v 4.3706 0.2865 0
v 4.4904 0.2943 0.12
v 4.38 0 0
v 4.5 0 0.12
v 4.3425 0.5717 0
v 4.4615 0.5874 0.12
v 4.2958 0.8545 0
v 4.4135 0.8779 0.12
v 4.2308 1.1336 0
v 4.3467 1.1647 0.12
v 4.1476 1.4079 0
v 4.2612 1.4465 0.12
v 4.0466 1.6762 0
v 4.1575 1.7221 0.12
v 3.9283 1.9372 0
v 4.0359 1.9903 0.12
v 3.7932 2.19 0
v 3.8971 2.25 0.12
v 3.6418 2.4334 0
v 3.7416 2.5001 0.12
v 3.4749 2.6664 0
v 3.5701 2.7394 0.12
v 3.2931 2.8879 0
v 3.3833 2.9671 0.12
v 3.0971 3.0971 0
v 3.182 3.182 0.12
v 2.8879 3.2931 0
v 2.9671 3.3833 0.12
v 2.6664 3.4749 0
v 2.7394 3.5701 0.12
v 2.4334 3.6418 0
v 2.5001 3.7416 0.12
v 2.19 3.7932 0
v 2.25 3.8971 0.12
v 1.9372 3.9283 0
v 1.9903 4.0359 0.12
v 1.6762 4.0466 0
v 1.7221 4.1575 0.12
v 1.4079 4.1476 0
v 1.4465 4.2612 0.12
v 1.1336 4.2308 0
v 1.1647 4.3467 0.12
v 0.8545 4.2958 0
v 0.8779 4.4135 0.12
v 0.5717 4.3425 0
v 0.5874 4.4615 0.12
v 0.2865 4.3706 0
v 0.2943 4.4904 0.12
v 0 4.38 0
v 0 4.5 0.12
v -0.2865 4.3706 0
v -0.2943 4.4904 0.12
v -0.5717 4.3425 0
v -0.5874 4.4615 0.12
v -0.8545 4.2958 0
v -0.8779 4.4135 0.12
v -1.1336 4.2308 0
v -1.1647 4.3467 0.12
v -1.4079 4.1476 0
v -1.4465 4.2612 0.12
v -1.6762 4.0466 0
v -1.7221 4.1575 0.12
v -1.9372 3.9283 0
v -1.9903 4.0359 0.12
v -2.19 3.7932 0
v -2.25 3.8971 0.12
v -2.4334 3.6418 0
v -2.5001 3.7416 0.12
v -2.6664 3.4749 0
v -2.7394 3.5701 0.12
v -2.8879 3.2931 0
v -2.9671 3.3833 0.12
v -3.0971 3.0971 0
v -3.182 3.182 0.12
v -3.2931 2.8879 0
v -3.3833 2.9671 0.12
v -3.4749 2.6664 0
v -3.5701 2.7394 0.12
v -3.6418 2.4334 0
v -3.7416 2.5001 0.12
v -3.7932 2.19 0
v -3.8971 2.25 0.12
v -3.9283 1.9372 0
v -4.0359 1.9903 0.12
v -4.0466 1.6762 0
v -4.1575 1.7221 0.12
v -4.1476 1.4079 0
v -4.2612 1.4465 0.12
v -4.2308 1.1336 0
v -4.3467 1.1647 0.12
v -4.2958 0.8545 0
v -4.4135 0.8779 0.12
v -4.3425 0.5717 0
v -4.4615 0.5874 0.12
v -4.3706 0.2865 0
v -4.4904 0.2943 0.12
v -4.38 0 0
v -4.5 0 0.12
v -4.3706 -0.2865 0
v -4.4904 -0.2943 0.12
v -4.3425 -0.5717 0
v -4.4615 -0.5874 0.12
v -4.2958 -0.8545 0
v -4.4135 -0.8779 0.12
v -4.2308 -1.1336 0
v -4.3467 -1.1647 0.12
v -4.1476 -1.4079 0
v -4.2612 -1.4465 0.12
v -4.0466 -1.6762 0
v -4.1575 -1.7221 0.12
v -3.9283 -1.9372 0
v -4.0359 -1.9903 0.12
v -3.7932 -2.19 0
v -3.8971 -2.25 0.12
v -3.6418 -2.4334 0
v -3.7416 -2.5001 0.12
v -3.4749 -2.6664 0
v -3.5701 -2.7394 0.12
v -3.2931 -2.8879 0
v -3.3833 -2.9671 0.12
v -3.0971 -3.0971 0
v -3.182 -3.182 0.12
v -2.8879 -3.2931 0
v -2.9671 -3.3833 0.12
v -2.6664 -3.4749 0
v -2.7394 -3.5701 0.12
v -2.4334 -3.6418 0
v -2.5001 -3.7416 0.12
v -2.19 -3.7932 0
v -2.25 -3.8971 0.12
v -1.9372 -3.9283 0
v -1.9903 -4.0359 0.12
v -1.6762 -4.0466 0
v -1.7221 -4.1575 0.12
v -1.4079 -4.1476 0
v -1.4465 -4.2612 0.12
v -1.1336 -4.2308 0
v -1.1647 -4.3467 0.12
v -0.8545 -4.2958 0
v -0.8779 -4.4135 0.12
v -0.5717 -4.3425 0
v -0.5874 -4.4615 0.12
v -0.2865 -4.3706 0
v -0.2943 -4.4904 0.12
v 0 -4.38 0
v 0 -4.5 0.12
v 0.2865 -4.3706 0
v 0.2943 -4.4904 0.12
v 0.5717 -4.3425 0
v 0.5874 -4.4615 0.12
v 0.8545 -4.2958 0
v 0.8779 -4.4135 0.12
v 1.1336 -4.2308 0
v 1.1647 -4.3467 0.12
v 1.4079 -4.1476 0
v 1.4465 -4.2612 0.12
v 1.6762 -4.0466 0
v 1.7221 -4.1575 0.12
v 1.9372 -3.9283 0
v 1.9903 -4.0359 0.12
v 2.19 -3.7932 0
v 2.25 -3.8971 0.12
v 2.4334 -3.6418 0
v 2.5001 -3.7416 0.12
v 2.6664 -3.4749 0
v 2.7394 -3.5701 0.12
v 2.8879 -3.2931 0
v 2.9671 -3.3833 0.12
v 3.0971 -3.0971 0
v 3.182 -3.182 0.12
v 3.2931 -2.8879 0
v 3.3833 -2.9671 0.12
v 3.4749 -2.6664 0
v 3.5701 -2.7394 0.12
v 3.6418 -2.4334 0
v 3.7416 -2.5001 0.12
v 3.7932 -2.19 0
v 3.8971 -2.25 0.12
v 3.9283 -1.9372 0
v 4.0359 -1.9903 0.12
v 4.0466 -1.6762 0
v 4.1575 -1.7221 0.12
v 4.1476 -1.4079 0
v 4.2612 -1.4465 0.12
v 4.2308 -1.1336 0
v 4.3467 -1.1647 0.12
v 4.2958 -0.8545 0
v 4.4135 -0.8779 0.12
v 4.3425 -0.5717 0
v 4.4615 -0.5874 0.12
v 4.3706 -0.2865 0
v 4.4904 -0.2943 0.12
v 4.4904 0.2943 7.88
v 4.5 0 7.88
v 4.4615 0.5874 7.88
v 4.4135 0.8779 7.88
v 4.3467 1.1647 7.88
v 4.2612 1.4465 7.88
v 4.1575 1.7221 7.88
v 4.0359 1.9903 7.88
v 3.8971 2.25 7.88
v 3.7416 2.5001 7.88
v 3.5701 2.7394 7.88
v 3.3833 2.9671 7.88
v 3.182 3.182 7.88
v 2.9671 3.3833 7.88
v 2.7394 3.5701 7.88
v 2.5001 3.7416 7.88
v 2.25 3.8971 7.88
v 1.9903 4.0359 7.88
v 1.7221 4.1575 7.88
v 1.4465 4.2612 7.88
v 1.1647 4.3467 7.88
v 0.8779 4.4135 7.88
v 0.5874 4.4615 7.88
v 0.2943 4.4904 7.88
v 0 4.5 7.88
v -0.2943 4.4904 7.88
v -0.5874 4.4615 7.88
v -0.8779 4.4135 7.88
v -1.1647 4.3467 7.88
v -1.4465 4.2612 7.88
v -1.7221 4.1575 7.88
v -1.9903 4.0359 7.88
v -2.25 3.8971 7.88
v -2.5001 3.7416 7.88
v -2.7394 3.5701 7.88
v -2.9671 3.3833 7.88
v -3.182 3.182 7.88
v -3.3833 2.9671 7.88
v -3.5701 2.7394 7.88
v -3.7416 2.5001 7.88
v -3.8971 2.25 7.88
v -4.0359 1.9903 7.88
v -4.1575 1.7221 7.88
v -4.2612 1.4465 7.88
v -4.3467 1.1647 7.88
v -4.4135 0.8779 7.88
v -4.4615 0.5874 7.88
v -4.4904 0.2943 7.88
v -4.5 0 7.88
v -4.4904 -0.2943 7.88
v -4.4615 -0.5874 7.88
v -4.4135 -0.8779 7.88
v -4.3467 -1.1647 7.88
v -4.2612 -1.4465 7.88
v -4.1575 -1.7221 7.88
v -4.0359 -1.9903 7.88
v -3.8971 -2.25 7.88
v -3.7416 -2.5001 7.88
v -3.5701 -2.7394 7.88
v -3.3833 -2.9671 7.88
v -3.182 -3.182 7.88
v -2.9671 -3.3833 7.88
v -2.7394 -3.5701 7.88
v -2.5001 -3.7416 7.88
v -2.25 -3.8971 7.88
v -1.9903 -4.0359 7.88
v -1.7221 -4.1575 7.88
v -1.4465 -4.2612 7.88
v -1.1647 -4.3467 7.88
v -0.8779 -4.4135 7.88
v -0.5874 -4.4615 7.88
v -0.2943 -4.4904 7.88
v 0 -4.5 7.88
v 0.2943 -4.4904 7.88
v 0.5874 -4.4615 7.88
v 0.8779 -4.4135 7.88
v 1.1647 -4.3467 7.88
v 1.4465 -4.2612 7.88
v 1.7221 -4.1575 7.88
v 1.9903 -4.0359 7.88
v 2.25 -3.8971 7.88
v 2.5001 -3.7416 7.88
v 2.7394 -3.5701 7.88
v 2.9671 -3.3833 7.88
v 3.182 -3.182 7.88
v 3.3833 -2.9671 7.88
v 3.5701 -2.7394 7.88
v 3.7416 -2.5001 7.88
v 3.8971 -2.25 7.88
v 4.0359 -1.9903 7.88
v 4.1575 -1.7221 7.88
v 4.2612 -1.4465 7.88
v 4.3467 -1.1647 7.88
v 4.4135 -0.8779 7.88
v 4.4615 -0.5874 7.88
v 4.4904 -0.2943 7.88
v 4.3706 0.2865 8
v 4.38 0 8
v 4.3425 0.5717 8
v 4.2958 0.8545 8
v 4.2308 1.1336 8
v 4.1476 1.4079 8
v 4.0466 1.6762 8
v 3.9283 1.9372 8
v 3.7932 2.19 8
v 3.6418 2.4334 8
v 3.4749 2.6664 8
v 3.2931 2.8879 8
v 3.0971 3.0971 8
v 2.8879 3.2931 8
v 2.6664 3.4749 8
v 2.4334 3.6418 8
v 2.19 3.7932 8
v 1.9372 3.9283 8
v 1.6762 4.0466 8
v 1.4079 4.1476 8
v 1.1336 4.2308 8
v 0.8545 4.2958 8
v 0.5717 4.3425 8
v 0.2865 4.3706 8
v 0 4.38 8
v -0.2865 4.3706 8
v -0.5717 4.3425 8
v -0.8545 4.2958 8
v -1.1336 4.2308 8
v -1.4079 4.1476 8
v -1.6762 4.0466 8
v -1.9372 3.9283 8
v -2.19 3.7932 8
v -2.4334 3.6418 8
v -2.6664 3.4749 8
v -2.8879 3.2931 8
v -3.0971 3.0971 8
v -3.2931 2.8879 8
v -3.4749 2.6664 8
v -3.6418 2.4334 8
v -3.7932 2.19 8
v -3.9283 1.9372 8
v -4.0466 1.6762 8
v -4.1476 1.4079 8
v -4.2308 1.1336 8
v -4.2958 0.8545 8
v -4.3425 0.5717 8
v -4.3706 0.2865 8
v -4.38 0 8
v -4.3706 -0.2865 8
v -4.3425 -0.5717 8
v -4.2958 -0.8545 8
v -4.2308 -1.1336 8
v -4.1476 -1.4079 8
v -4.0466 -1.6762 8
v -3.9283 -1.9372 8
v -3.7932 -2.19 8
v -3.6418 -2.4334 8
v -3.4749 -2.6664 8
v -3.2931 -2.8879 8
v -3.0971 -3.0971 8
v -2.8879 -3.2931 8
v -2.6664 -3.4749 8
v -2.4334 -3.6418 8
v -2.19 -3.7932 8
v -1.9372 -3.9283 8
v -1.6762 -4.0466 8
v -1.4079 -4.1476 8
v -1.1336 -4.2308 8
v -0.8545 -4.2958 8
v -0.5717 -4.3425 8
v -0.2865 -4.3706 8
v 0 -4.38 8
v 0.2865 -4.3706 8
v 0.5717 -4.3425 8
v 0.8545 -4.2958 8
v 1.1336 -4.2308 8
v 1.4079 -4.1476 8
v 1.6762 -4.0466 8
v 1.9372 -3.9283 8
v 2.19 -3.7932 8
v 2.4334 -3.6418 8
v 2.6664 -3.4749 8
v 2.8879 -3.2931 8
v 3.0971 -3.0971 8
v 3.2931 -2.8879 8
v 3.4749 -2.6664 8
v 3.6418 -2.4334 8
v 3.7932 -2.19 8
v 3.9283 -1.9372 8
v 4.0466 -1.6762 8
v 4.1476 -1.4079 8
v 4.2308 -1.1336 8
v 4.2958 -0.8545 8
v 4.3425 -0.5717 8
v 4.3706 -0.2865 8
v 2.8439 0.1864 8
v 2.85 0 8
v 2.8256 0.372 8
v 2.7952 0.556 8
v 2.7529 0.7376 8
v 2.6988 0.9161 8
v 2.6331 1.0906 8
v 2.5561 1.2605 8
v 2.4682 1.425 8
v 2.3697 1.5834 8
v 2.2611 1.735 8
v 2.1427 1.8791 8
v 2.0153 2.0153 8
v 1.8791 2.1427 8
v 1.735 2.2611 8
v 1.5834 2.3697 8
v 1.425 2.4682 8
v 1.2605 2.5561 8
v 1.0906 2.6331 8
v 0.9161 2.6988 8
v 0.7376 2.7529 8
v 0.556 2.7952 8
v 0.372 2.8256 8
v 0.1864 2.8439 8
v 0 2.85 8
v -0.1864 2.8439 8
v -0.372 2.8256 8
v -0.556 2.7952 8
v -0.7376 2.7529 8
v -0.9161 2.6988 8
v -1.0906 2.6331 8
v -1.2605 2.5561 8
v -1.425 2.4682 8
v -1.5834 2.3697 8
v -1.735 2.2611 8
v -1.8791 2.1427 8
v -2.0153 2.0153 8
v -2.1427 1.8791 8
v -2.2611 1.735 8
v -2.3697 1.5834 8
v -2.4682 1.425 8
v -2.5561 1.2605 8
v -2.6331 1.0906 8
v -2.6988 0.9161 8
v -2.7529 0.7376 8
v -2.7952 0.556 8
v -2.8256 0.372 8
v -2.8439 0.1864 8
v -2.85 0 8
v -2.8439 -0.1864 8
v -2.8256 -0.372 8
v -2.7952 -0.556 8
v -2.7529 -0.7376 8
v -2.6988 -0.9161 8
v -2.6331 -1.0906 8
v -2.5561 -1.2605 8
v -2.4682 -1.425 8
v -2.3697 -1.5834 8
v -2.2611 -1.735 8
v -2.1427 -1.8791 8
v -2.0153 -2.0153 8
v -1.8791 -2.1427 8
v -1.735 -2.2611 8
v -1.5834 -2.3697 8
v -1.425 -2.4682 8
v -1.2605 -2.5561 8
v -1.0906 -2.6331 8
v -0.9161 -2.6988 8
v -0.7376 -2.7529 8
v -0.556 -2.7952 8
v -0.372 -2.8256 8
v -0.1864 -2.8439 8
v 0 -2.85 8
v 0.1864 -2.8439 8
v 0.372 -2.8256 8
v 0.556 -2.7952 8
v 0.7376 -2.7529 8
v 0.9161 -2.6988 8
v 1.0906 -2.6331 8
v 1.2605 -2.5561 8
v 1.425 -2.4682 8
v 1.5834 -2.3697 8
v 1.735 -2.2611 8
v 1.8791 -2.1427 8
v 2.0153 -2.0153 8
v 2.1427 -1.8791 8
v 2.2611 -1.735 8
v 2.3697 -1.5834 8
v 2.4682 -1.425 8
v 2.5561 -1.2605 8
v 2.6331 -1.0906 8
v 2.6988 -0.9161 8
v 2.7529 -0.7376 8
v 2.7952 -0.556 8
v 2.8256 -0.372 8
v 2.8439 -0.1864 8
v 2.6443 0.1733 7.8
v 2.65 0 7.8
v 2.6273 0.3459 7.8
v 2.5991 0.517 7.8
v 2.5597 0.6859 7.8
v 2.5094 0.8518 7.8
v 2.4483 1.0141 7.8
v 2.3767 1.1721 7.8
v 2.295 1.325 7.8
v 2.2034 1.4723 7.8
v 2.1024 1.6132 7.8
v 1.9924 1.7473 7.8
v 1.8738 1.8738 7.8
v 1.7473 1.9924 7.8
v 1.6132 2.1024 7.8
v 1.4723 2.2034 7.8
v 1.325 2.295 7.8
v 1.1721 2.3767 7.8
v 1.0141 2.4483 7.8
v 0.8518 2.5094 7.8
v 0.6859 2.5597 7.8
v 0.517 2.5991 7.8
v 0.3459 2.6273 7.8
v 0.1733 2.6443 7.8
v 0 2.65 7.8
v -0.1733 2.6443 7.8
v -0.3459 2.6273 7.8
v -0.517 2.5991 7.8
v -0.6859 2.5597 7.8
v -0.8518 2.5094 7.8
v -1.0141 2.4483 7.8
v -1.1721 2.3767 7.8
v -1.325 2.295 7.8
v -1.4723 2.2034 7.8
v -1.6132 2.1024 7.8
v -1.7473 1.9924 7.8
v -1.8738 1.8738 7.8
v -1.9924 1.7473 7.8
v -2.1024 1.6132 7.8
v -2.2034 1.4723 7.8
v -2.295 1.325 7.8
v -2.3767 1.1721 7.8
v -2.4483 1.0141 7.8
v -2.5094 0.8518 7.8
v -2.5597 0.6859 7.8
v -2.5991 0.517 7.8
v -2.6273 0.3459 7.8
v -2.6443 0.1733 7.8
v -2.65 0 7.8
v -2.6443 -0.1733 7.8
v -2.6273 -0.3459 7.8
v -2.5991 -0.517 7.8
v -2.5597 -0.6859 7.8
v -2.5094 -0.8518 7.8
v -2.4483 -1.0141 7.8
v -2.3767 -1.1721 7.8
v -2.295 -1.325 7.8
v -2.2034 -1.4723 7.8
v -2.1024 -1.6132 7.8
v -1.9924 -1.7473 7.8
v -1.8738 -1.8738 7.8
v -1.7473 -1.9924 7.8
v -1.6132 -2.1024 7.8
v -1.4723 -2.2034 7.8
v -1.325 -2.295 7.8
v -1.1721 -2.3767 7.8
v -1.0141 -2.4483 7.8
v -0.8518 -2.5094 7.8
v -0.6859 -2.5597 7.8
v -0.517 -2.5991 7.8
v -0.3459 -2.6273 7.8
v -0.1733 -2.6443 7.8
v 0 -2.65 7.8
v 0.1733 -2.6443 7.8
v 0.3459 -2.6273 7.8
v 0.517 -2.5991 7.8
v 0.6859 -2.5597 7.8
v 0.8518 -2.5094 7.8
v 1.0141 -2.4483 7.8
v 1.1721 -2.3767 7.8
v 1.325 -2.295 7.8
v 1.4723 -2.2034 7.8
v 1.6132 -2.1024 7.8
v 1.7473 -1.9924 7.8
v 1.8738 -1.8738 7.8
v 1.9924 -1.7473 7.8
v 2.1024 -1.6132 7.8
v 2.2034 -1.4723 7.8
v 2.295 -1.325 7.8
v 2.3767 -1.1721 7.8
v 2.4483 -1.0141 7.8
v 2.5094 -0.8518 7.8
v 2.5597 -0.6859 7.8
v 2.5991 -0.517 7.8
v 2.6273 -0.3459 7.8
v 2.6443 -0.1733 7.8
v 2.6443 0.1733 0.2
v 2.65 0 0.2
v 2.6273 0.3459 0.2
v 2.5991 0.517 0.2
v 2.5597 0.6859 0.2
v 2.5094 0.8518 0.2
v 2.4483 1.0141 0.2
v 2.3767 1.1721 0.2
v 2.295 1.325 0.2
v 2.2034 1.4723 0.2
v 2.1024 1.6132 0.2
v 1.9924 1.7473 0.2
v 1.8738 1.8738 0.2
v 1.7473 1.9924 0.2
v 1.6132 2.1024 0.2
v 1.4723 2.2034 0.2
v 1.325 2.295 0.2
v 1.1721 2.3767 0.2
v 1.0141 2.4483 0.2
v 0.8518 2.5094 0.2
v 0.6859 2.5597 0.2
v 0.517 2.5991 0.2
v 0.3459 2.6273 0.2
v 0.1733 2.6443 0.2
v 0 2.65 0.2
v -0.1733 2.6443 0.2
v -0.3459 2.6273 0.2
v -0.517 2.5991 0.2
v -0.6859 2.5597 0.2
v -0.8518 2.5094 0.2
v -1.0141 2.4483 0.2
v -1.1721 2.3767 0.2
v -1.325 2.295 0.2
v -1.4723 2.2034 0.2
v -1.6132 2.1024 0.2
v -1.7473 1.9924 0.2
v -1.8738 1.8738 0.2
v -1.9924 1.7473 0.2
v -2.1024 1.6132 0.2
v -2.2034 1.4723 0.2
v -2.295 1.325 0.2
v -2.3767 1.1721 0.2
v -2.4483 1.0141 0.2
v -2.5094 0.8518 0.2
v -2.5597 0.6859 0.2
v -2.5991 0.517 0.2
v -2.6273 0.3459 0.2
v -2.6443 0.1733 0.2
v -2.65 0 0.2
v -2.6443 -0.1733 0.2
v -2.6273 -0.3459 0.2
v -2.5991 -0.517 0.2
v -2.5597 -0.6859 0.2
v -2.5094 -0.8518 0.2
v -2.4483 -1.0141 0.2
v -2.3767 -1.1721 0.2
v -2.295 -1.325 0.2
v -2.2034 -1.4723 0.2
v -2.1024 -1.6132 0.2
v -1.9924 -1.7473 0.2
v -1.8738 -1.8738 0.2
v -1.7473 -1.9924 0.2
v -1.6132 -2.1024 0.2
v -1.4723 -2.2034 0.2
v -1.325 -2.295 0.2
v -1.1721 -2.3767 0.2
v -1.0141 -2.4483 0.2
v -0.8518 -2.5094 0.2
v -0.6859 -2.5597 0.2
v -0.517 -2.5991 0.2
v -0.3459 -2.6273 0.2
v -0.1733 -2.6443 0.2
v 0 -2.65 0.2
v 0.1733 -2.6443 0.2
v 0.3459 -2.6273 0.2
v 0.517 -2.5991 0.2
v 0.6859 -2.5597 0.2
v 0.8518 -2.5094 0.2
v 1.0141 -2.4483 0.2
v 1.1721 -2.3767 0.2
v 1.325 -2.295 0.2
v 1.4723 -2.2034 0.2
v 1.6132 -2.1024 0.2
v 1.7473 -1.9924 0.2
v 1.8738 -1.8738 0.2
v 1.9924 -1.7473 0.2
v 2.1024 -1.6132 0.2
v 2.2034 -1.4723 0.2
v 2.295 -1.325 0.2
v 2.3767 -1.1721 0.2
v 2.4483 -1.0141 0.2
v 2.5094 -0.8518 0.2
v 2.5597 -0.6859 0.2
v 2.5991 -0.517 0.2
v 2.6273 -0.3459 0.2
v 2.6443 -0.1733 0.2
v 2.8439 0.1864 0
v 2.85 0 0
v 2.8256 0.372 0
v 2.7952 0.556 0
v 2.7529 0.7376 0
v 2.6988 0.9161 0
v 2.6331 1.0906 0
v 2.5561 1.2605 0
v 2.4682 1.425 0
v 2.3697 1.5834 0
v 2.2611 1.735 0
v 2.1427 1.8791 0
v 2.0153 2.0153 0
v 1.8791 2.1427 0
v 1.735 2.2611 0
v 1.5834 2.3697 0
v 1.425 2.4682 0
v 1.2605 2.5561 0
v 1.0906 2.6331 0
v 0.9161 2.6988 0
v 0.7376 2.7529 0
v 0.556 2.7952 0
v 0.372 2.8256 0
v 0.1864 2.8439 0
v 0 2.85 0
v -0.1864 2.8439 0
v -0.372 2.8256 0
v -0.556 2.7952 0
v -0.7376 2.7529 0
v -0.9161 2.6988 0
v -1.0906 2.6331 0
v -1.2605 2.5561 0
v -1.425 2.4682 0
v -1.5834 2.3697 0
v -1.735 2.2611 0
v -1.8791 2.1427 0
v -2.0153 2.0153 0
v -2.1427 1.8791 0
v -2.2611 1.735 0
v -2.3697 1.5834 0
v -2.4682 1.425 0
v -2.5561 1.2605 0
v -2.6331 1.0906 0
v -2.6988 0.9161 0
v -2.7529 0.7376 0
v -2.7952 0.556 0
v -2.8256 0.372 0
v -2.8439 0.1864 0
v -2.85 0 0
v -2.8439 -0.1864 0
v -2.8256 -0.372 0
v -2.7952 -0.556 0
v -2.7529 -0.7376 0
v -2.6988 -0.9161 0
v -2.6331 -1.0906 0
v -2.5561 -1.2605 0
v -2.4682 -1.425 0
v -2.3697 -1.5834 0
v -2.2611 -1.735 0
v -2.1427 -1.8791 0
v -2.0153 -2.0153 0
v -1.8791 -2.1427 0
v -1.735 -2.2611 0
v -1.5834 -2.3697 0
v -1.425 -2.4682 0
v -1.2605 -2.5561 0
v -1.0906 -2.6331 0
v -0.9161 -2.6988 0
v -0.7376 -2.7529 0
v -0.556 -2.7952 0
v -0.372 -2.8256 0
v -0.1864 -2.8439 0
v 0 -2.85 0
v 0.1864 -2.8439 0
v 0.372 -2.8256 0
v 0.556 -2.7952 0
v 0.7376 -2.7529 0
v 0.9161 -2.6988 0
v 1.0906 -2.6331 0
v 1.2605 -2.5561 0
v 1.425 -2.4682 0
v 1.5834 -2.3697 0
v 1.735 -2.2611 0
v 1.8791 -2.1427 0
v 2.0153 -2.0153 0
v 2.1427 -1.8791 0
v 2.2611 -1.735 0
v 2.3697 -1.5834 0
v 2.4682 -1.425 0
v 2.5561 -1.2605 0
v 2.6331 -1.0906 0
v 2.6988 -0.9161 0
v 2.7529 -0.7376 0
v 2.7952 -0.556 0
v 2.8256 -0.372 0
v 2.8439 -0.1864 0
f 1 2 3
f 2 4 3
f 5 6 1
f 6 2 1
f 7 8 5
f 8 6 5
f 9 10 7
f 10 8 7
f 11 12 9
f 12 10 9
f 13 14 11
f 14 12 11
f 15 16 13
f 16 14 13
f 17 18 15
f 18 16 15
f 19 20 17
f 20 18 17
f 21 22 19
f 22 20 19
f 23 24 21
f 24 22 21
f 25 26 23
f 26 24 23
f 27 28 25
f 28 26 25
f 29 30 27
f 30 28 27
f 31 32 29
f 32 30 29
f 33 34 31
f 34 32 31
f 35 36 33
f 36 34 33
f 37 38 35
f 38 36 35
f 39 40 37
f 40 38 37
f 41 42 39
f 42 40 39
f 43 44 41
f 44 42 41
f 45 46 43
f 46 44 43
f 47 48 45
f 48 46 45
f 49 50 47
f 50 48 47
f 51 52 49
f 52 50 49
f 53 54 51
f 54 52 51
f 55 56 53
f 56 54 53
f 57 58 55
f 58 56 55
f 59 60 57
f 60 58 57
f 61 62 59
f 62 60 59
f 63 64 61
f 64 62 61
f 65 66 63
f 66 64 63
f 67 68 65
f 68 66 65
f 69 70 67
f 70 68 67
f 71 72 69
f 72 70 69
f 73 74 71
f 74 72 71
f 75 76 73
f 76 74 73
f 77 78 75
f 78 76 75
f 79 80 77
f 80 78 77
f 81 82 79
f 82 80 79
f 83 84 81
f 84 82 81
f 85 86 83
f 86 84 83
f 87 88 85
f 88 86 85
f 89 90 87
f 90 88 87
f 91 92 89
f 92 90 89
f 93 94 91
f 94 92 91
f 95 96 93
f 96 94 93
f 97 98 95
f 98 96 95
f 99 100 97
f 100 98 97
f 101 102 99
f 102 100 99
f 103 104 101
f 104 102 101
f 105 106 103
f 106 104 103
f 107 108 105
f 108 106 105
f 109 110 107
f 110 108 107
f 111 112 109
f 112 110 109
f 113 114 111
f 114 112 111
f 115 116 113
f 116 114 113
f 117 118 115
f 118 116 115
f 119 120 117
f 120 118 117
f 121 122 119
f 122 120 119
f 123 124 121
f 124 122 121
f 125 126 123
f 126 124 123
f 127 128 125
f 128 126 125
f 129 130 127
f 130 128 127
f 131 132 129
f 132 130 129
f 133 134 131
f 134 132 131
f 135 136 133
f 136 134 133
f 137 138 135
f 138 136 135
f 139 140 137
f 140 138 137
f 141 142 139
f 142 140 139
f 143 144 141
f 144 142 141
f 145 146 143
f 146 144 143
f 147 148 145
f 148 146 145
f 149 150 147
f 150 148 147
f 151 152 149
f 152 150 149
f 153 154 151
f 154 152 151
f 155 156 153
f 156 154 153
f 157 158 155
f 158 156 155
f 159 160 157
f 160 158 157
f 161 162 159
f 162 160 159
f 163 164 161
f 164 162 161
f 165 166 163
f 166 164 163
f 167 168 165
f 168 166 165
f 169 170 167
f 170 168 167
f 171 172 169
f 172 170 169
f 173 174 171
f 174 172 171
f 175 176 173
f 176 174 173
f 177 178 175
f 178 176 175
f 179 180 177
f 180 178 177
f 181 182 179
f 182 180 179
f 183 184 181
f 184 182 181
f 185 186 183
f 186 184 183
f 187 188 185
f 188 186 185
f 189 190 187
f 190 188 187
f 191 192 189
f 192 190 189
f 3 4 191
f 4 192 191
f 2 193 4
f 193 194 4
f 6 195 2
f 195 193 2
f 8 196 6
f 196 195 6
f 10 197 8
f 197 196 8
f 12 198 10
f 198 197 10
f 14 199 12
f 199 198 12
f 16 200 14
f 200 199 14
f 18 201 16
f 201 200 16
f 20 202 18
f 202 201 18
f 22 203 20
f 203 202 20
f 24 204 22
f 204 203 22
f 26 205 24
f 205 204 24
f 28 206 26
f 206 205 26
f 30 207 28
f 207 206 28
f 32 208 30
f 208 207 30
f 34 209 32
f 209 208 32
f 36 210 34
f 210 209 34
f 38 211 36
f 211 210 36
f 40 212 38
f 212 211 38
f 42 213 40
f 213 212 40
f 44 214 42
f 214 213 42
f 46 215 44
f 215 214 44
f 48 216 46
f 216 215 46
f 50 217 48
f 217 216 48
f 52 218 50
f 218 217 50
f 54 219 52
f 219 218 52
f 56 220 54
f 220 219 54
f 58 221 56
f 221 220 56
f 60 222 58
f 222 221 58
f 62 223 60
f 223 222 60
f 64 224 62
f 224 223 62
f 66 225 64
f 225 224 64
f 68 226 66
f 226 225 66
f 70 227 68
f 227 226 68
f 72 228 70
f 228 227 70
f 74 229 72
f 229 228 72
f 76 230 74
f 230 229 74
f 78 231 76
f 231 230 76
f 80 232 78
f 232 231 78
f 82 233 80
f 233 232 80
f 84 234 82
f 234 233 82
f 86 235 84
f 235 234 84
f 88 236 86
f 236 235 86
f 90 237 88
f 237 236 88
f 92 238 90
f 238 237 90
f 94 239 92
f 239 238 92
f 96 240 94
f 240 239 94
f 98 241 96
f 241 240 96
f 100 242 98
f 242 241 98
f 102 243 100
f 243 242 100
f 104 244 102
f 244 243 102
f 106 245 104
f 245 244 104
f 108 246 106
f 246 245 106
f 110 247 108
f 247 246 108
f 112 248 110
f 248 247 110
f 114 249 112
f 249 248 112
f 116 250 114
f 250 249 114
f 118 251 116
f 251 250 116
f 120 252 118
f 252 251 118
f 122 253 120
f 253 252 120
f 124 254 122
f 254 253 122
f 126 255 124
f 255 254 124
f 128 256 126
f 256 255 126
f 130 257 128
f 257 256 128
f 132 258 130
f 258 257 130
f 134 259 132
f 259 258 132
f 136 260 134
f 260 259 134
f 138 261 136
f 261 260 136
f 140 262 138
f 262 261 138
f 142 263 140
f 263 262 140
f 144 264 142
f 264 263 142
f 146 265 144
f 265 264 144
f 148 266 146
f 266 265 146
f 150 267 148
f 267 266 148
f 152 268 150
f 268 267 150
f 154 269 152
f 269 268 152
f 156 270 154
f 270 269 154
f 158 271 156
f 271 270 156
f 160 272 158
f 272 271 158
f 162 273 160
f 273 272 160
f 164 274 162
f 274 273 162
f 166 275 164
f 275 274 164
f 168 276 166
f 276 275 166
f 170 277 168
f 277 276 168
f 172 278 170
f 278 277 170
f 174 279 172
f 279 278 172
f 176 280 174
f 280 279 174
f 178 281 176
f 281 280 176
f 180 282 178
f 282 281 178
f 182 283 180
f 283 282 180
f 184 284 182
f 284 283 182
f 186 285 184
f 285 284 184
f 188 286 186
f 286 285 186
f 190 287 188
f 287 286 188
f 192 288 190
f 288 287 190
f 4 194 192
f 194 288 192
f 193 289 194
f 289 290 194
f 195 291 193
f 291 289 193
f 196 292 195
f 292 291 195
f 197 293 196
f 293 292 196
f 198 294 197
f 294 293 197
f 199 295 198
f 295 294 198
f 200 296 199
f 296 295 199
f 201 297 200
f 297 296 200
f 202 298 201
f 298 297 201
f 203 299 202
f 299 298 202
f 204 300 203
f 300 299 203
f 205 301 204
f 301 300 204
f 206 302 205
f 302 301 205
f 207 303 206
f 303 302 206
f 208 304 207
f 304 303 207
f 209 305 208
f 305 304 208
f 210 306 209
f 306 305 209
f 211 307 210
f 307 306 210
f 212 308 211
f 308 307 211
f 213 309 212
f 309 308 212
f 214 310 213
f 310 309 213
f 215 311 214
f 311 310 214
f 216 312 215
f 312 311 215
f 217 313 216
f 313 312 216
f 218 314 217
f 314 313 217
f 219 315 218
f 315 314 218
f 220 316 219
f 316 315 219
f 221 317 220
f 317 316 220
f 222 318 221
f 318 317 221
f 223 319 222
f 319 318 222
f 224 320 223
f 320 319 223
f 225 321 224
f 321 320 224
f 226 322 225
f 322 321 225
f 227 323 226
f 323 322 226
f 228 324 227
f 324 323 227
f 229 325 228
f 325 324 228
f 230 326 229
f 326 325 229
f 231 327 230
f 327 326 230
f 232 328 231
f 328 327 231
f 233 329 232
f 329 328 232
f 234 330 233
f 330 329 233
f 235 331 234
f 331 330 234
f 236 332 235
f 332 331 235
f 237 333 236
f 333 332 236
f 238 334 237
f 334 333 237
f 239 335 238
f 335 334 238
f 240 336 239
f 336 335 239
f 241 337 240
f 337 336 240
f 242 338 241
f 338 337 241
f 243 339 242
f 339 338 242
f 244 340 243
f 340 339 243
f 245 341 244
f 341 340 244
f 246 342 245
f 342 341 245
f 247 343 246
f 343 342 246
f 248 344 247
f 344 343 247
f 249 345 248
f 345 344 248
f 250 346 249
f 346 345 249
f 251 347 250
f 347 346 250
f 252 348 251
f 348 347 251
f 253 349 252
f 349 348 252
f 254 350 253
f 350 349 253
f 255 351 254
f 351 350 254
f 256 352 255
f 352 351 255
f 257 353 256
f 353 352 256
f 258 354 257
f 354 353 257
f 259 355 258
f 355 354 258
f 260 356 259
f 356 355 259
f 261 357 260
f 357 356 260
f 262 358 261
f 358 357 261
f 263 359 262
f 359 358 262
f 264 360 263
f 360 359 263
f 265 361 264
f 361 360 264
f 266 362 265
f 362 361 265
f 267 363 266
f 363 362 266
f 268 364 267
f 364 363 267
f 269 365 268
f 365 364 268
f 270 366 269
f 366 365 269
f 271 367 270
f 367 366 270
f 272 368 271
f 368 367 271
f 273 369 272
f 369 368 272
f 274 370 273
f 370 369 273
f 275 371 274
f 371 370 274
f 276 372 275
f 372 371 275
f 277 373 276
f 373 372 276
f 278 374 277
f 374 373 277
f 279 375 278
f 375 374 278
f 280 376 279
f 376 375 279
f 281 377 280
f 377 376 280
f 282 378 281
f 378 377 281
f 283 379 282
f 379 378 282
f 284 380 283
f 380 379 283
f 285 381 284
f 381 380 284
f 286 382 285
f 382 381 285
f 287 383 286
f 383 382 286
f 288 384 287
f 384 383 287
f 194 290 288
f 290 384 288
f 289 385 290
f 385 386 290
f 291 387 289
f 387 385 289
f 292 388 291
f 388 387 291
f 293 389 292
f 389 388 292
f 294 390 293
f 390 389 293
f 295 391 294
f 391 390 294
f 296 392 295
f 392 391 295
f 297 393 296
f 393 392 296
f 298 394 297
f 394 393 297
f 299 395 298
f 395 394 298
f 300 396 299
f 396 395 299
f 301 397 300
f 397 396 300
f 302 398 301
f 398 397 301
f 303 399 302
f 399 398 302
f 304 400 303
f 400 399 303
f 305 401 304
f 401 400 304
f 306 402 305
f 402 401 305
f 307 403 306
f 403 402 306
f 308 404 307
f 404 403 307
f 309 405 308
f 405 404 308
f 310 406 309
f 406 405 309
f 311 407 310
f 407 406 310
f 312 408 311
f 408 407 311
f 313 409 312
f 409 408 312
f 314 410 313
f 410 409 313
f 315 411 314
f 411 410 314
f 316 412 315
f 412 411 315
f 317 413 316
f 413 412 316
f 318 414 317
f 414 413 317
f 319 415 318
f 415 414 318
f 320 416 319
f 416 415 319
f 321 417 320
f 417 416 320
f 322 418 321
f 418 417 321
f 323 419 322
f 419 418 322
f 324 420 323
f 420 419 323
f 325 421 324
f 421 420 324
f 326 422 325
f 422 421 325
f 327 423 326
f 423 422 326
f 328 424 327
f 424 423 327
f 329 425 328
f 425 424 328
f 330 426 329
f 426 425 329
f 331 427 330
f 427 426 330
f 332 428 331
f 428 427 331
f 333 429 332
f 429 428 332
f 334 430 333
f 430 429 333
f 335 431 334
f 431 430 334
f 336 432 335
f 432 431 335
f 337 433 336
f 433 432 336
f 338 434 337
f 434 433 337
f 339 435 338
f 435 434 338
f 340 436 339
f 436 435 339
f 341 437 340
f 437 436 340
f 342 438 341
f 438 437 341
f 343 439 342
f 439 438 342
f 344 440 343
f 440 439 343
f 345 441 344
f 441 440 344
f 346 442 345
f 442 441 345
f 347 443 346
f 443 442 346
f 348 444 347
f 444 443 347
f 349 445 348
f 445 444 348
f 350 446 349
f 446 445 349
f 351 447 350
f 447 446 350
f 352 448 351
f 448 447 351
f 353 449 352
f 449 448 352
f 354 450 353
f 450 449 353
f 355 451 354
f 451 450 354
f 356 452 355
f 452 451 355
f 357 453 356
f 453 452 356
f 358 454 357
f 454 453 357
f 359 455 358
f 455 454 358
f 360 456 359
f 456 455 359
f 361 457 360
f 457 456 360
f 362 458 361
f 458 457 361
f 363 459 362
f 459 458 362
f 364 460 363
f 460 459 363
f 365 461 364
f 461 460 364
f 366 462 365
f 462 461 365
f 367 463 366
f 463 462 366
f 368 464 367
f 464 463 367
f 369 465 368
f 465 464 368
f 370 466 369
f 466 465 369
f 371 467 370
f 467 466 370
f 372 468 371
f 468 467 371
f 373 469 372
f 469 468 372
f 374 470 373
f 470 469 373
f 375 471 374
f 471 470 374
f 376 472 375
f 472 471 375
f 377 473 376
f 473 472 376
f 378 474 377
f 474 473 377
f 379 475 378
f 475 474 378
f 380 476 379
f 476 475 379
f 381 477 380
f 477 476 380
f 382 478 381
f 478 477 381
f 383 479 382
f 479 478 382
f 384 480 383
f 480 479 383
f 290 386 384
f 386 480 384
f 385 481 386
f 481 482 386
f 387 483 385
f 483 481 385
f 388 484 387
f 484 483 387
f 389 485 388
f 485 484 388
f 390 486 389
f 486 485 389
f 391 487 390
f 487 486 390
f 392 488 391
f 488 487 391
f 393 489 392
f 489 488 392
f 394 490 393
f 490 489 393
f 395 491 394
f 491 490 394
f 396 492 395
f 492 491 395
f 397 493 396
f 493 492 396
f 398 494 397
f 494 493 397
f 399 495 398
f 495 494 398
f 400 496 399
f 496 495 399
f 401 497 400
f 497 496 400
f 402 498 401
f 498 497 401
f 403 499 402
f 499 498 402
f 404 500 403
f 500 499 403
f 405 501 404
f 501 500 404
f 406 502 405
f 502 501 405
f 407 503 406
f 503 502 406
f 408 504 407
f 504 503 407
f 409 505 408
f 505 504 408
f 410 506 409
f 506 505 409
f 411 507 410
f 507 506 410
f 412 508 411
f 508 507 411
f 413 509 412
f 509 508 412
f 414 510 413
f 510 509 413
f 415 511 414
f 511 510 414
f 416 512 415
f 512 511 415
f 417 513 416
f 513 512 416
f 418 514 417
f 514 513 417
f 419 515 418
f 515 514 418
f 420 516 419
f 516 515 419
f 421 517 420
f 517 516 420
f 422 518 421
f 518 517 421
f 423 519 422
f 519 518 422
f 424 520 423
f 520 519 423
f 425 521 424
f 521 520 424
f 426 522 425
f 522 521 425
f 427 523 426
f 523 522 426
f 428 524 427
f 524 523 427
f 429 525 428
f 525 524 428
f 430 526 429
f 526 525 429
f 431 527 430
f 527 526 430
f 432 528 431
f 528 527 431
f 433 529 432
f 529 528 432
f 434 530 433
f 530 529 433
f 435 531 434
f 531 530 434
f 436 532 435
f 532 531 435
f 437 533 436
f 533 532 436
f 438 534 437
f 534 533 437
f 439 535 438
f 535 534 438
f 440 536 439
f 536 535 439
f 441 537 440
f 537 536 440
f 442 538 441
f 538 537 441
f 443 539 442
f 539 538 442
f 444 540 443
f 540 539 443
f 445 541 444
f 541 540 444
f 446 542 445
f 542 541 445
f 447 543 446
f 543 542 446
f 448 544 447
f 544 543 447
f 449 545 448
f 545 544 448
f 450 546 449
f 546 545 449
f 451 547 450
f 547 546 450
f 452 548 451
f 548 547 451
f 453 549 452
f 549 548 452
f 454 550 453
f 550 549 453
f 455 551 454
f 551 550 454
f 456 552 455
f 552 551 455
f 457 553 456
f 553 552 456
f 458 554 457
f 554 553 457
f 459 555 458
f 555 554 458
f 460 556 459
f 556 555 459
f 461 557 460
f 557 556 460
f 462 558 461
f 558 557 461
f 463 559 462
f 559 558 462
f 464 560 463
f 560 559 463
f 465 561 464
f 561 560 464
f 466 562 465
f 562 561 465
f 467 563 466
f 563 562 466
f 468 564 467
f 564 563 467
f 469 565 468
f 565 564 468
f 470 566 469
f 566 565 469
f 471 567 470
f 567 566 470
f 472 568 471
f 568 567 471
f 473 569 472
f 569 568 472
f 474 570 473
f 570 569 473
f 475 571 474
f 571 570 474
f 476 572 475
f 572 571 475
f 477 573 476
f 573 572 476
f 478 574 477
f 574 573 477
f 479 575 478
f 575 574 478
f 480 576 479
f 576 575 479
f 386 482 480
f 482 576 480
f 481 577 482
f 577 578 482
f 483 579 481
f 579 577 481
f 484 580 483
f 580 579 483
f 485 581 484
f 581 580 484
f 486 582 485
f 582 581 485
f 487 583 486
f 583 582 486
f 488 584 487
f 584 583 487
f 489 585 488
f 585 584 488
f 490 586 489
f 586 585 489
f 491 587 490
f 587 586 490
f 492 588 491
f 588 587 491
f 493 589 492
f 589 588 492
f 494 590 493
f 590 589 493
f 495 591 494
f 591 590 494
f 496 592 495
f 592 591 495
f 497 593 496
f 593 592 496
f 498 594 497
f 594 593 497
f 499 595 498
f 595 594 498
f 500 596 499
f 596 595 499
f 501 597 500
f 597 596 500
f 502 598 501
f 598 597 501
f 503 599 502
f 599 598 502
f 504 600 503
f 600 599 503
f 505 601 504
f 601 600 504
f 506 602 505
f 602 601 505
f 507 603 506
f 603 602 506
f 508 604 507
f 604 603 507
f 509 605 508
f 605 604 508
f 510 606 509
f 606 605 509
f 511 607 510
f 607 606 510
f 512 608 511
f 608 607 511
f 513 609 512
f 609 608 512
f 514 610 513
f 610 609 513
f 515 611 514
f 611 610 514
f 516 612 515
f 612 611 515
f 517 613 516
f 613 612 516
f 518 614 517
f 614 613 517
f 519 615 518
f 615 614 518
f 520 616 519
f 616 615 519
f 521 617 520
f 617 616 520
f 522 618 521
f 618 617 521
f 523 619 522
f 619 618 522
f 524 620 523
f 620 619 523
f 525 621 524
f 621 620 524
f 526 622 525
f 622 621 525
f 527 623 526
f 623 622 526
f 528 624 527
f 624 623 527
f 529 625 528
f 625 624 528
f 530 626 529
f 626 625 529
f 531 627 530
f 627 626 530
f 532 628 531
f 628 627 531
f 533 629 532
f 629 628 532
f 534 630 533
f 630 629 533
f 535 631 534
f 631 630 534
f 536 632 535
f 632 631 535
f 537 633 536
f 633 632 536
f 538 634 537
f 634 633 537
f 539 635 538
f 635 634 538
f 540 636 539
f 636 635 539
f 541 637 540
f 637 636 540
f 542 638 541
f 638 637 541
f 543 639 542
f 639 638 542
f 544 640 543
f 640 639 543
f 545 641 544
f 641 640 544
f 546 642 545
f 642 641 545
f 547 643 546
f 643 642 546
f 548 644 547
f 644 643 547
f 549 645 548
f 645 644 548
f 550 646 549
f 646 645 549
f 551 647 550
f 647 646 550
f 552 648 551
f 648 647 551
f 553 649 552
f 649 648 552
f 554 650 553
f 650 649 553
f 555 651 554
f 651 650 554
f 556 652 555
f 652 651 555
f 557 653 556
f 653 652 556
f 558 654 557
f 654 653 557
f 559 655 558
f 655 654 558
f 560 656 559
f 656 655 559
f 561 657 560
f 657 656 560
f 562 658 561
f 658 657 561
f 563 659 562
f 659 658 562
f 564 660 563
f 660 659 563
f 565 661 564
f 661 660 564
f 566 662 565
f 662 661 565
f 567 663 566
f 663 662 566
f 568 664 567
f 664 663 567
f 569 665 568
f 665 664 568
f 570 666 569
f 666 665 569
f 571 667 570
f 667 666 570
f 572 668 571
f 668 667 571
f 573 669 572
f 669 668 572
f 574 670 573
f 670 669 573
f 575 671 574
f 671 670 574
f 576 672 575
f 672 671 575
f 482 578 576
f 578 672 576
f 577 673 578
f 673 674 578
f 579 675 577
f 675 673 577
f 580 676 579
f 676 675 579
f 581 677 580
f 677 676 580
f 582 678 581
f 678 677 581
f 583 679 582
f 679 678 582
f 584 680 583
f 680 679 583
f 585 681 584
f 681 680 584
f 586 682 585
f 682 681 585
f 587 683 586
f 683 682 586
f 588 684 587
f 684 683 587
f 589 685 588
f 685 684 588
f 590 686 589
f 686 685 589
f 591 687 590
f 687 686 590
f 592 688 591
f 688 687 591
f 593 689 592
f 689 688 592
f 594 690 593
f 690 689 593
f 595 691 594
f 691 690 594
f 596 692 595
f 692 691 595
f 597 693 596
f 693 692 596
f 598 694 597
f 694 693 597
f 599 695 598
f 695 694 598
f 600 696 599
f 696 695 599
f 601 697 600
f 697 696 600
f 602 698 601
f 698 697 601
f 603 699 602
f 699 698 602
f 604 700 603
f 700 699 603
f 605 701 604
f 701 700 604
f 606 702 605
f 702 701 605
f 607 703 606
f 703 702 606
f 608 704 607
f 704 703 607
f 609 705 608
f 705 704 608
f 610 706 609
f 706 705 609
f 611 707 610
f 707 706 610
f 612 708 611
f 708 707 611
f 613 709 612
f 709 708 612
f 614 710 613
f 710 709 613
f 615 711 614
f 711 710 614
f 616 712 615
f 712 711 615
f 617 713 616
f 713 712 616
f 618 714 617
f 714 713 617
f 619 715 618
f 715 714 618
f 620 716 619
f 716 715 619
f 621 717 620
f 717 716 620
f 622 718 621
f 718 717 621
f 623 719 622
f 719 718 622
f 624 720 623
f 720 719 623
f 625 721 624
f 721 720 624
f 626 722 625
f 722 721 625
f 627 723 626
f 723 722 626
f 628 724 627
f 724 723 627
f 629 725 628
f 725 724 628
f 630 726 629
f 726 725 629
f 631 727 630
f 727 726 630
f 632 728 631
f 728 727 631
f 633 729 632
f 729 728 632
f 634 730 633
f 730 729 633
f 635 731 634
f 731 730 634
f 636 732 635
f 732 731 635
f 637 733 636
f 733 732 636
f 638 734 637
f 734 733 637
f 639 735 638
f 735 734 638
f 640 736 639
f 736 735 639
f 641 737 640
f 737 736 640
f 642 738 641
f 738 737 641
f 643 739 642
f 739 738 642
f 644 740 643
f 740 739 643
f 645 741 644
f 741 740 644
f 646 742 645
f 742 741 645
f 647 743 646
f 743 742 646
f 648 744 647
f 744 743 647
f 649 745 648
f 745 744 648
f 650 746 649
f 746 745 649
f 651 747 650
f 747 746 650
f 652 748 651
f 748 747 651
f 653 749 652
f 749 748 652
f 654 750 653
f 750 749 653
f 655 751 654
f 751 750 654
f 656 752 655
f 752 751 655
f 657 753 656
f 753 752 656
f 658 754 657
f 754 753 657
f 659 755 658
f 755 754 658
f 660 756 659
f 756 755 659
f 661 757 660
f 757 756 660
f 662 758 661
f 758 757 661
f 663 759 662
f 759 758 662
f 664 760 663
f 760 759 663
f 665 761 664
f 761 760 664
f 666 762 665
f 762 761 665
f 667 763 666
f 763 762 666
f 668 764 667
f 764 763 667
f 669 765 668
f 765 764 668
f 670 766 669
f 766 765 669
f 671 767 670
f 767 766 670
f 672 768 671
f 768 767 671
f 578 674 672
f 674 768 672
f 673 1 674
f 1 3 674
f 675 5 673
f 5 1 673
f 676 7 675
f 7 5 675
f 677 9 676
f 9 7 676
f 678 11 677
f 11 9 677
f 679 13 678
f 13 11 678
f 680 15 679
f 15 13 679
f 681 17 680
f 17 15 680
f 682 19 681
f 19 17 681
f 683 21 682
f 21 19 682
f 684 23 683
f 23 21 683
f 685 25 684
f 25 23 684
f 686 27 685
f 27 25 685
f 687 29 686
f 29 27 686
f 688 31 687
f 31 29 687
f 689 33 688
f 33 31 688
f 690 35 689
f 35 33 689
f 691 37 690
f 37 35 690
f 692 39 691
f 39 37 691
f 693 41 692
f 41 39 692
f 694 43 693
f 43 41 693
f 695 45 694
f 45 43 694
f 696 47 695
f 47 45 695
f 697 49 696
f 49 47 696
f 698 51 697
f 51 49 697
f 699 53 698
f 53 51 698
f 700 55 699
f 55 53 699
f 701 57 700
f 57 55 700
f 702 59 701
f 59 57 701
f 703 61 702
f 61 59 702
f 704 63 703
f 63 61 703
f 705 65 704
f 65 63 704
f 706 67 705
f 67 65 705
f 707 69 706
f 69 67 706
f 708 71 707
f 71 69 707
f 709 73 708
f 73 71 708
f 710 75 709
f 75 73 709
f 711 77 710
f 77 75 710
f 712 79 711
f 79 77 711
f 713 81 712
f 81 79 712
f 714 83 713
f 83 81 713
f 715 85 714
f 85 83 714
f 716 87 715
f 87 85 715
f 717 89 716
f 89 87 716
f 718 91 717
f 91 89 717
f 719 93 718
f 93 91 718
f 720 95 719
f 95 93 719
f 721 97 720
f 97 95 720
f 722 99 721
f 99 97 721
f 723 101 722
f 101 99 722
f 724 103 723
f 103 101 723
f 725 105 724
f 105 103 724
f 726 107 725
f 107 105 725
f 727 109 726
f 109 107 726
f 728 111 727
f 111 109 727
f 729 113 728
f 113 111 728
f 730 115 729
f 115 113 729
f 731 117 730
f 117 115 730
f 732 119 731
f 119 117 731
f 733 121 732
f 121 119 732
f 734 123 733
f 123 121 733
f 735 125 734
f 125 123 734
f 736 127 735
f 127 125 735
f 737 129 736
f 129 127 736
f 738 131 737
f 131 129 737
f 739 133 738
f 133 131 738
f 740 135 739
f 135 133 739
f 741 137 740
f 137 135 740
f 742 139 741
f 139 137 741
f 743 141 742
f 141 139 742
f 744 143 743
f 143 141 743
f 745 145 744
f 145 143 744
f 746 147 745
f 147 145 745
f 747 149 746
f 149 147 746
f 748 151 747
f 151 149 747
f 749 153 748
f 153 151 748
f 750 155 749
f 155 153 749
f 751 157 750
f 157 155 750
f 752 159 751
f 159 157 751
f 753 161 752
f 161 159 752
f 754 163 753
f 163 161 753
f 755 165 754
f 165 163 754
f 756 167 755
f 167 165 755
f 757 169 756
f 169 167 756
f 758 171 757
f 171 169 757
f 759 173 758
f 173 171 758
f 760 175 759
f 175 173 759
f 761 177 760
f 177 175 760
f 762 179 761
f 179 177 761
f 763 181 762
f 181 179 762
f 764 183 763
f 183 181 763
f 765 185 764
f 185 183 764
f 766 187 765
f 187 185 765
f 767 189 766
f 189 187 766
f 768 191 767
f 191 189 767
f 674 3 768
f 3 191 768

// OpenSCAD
// OOMP generic catalogue model; units: mm.
// Stud length is additional to body depth. Tapping depths are model assumptions.
variant = "full"; // [full, display]
family = "spacer";
connection_type = "plain";
depth_mm = 8;
stud_length_mm = 0;
tapped_depth_mm = 0;
bore_mm = 5.3;
outer_diameter_mm = 9;
across_flats_mm = 6;
thread_nominal_diameter_mm = 3;
thread_pitch_mm = 0.5;
edge_chamfer_mm = 0.12;
mouth_chamfer_mm = 0.2;
angular_segments = 96;
samples_per_pitch = 16;

// Boundary travels up the outside, then down any tapped/plain bore.
// Equal-height rings at shoulders form the annular shoulder faces.
n = angular_segments;
threaded = family == "standoff";
has_stud = connection_type == "stud_to_tapped" || connection_type == "stud_to_stud";
two_studs = connection_type == "stud_to_stud";
through = !threaded || connection_type == "tapped_to_tapped";
pitch = thread_pitch_mm;
diameter = threaded ? thread_nominal_diameter_mm : bore_mm;
minor = diameter - 5*sqrt(3)*pitch/8;
transition = mouth_chamfer_mm + (threaded ? 5*sqrt(3)*pitch/16 : 0);
tip_chamfer = mouth_chamfer_mm + 17*sqrt(3)*pitch/48;
function sorted(v) = len(v)<=1 ? v : let(p=v[0])
    concat(sorted([for(x=v) if(x<p-1e-8) x]), [p], sorted([for(x=v) if(x>p+1e-8) x]));
function reverse(v) = [for(i=[len(v)-1:-1:0]) v[i]];
function theta(i) = i*360/n;
function fract(x) = x-floor(x);
function phase_distance(i,z) = abs(fract(z/pitch-theta(i)/360+0.5)-0.5);
function thread_r(i,z) = minor/2 + min(5*sqrt(3)*pitch/16,
    max(0,(phase_distance(i,z)-0.125)*pitch*sqrt(3)));
function stud_r(i,z,tip) = min(diameter/2 - (variant=="full" ?
    min(17*sqrt(3)*pitch/48,max(0,(phase_distance(i,z)-0.0625)*pitch*sqrt(3))) : 0),
    diameter/2-tip_chamfer+abs(z-tip));
function body_r(i,z) = (threaded ? across_flats_mm/2/cos(theta(i)%60-30) : outer_diameter_mm/2)
    - max(0,edge_chamfer_mm-min(z,depth_mm-z));
function bore_r(i,z) = max(threaded ? (variant=="full" ? thread_r(i,z) : minor/2) : diameter/2,
    diameter/2+mouth_chamfer_mm-(through ? min(z,depth_mm-z) : depth_mm-z));
function stud_z(a,b,tip) = let(count=variant=="full" ? ceil(stud_length_mm/pitch*samples_per_pitch) : 1)
    sorted(concat([for(i=[0:count]) a+(b-a)*i/count], [tip==a ? tip+tip_chamfer : tip-tip_chamfer]));
body_z = sorted([0,edge_chamfer_mm,depth_mm-edge_chamfer_mm,depth_mm]);
low = through ? 0 : depth_mm-tapped_depth_mm;
count = threaded && variant=="full" ? ceil((depth_mm-low)/pitch*samples_per_pitch) : 1;
bore_z = two_studs ? [] : reverse(sorted(concat(
    [for(i=[0:count]) low+(depth_mm-low)*i/count],
    [depth_mm-mouth_chamfer_mm,depth_mm-transition],
    through ? [mouth_chamfer_mm,transition] : [])));
// Ring descriptors: [height, kind, tip]. Kind: 0 body, 1 stud, 2 bore.
rings = concat(
    has_stud ? [for(z=stud_z(-stud_length_mm,0,-stud_length_mm)) [z,1,-stud_length_mm]] : [],
    [for(z=body_z) [z,0,0]],
    two_studs ? [for(z=stud_z(depth_mm,depth_mm+stud_length_mm,depth_mm+stud_length_mm)) [z,1,depth_mm+stud_length_mm]] : [],
    [for(z=bore_z) [z,2,0]]);
function radius(i,ring) = ring[1]==0 ? body_r(i,ring[0]) :
    ring[1]==1 ? stud_r(i,ring[0],ring[2]) : bore_r(i,ring[0]);
points = concat([for(ring=rings) for(i=[0:n-1])
    [radius(i,ring)*cos(theta(i)),radius(i,ring)*sin(theta(i)),ring[0]]],
    through ? [] : [[0,0,rings[0][0]],[0,0,rings[len(rings)-1][0]]]);
center = len(rings)*n;
last = (len(rings)-1)*n;
// OpenSCAD winding is opposite to STL winding.
faces = concat(
    [for(j=[0:len(rings)-(through ? 1 : 2)]) for(i=[0:n-1]) each
        let(a=j*n+i,b=j*n+(i+1)%n,c=((j+1)%len(rings))*n+(i+1)%n,d=((j+1)%len(rings))*n+i)
        [[a,c,b],[a,d,c]]],
    through ? [] : [for(i=[0:n-1]) each let(k=(i+1)%n)
        [[center,i,k],[center+1,last+k,last+i]]]);
assert(family=="spacer" || family=="standoff");
assert(!threaded || connection_type=="tapped_to_tapped" || has_stud);
assert(depth_mm>0 && diameter>0 && pitch>0);
assert(variant=="full" || variant=="display");
assert(n>=24 && n%12==0 && samples_per_pitch>=8);
assert(mouth_chamfer_mm>0 && mouth_chamfer_mm<depth_mm/2);
assert(edge_chamfer_mm>=0 && edge_chamfer_mm<depth_mm/2);
assert(diameter+4*max(mouth_chamfer_mm,edge_chamfer_mm) < (threaded ? across_flats_mm : outer_diameter_mm));
assert(!has_stud || stud_length_mm>2*mouth_chamfer_mm);
assert(!through || !threaded || 2*transition<depth_mm);
assert(connection_type!="stud_to_tapped" || (tapped_depth_mm>transition && tapped_depth_mm<depth_mm));
color([0.86,0.85,0.81]) polyhedron(points=points,faces=faces,convexity=20);
